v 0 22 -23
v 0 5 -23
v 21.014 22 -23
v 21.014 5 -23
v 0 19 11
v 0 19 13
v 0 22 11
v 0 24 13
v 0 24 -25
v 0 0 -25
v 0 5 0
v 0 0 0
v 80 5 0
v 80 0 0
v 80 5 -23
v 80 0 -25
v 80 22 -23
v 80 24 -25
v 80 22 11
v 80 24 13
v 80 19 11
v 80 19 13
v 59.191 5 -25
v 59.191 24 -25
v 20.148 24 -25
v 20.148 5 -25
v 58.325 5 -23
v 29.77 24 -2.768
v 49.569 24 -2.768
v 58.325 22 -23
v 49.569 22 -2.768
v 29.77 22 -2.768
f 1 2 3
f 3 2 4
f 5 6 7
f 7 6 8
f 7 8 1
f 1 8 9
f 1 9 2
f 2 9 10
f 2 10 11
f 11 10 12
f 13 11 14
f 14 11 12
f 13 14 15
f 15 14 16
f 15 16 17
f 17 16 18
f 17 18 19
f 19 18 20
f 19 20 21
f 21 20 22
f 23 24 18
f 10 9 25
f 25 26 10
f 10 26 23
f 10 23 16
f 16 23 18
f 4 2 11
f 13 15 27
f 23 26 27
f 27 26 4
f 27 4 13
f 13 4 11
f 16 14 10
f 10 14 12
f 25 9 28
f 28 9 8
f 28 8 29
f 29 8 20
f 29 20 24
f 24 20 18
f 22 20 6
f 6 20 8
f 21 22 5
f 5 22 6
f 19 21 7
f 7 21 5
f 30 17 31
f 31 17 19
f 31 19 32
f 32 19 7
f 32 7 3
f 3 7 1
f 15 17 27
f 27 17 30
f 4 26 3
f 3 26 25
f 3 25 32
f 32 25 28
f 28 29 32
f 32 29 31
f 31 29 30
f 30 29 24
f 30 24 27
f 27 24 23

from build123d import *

# Parameters (mm, degrees)
SKETCH1_W           = 80
SKETCH1_H           = 25
BOSS_EXTRUDE1_DEPTH = 5
BOSS_EXTRUDE2_DEPTH = 80
CUT_EXTRUDE1_DEPTH  = 19


with BuildPart() as part:
    # Sketch1 → Boss-Extrude1 (new body)
    with BuildSketch(Plane(origin=(0, 0, 0), x_dir=(1, 0, 0), z_dir=(0, 1, 0))):
        with Locations((40, 12.5)):
            Rectangle(SKETCH1_W, SKETCH1_H)
    extrude(amount=BOSS_EXTRUDE1_DEPTH)

    # Sketch2 → Boss-Extrude2 (add)
    with BuildSketch(Plane.ZY):
        Polygon((-25, 5), (-25, 24), (13, 24), (13, 19), (11, 19), (11, 22), (-23, 22), (-23, 5), align=None)
    extrude(amount=-BOSS_EXTRUDE2_DEPTH)

    # Sketch3 → Cut-Extrude1 (cut)
    with BuildSketch(Plane(origin=(0, 24, 0), x_dir=(1, 0, 0), z_dir=(0, 1, 0))):
        Polygon((59.190693398, 25), (49.569343824, 2.768409055), (29.769781604, 2.768409055), (20.148432029, 25), align=None)
    extrude(amount=-CUT_EXTRUDE1_DEPTH, mode=Mode.SUBTRACT)


solid = part.part
